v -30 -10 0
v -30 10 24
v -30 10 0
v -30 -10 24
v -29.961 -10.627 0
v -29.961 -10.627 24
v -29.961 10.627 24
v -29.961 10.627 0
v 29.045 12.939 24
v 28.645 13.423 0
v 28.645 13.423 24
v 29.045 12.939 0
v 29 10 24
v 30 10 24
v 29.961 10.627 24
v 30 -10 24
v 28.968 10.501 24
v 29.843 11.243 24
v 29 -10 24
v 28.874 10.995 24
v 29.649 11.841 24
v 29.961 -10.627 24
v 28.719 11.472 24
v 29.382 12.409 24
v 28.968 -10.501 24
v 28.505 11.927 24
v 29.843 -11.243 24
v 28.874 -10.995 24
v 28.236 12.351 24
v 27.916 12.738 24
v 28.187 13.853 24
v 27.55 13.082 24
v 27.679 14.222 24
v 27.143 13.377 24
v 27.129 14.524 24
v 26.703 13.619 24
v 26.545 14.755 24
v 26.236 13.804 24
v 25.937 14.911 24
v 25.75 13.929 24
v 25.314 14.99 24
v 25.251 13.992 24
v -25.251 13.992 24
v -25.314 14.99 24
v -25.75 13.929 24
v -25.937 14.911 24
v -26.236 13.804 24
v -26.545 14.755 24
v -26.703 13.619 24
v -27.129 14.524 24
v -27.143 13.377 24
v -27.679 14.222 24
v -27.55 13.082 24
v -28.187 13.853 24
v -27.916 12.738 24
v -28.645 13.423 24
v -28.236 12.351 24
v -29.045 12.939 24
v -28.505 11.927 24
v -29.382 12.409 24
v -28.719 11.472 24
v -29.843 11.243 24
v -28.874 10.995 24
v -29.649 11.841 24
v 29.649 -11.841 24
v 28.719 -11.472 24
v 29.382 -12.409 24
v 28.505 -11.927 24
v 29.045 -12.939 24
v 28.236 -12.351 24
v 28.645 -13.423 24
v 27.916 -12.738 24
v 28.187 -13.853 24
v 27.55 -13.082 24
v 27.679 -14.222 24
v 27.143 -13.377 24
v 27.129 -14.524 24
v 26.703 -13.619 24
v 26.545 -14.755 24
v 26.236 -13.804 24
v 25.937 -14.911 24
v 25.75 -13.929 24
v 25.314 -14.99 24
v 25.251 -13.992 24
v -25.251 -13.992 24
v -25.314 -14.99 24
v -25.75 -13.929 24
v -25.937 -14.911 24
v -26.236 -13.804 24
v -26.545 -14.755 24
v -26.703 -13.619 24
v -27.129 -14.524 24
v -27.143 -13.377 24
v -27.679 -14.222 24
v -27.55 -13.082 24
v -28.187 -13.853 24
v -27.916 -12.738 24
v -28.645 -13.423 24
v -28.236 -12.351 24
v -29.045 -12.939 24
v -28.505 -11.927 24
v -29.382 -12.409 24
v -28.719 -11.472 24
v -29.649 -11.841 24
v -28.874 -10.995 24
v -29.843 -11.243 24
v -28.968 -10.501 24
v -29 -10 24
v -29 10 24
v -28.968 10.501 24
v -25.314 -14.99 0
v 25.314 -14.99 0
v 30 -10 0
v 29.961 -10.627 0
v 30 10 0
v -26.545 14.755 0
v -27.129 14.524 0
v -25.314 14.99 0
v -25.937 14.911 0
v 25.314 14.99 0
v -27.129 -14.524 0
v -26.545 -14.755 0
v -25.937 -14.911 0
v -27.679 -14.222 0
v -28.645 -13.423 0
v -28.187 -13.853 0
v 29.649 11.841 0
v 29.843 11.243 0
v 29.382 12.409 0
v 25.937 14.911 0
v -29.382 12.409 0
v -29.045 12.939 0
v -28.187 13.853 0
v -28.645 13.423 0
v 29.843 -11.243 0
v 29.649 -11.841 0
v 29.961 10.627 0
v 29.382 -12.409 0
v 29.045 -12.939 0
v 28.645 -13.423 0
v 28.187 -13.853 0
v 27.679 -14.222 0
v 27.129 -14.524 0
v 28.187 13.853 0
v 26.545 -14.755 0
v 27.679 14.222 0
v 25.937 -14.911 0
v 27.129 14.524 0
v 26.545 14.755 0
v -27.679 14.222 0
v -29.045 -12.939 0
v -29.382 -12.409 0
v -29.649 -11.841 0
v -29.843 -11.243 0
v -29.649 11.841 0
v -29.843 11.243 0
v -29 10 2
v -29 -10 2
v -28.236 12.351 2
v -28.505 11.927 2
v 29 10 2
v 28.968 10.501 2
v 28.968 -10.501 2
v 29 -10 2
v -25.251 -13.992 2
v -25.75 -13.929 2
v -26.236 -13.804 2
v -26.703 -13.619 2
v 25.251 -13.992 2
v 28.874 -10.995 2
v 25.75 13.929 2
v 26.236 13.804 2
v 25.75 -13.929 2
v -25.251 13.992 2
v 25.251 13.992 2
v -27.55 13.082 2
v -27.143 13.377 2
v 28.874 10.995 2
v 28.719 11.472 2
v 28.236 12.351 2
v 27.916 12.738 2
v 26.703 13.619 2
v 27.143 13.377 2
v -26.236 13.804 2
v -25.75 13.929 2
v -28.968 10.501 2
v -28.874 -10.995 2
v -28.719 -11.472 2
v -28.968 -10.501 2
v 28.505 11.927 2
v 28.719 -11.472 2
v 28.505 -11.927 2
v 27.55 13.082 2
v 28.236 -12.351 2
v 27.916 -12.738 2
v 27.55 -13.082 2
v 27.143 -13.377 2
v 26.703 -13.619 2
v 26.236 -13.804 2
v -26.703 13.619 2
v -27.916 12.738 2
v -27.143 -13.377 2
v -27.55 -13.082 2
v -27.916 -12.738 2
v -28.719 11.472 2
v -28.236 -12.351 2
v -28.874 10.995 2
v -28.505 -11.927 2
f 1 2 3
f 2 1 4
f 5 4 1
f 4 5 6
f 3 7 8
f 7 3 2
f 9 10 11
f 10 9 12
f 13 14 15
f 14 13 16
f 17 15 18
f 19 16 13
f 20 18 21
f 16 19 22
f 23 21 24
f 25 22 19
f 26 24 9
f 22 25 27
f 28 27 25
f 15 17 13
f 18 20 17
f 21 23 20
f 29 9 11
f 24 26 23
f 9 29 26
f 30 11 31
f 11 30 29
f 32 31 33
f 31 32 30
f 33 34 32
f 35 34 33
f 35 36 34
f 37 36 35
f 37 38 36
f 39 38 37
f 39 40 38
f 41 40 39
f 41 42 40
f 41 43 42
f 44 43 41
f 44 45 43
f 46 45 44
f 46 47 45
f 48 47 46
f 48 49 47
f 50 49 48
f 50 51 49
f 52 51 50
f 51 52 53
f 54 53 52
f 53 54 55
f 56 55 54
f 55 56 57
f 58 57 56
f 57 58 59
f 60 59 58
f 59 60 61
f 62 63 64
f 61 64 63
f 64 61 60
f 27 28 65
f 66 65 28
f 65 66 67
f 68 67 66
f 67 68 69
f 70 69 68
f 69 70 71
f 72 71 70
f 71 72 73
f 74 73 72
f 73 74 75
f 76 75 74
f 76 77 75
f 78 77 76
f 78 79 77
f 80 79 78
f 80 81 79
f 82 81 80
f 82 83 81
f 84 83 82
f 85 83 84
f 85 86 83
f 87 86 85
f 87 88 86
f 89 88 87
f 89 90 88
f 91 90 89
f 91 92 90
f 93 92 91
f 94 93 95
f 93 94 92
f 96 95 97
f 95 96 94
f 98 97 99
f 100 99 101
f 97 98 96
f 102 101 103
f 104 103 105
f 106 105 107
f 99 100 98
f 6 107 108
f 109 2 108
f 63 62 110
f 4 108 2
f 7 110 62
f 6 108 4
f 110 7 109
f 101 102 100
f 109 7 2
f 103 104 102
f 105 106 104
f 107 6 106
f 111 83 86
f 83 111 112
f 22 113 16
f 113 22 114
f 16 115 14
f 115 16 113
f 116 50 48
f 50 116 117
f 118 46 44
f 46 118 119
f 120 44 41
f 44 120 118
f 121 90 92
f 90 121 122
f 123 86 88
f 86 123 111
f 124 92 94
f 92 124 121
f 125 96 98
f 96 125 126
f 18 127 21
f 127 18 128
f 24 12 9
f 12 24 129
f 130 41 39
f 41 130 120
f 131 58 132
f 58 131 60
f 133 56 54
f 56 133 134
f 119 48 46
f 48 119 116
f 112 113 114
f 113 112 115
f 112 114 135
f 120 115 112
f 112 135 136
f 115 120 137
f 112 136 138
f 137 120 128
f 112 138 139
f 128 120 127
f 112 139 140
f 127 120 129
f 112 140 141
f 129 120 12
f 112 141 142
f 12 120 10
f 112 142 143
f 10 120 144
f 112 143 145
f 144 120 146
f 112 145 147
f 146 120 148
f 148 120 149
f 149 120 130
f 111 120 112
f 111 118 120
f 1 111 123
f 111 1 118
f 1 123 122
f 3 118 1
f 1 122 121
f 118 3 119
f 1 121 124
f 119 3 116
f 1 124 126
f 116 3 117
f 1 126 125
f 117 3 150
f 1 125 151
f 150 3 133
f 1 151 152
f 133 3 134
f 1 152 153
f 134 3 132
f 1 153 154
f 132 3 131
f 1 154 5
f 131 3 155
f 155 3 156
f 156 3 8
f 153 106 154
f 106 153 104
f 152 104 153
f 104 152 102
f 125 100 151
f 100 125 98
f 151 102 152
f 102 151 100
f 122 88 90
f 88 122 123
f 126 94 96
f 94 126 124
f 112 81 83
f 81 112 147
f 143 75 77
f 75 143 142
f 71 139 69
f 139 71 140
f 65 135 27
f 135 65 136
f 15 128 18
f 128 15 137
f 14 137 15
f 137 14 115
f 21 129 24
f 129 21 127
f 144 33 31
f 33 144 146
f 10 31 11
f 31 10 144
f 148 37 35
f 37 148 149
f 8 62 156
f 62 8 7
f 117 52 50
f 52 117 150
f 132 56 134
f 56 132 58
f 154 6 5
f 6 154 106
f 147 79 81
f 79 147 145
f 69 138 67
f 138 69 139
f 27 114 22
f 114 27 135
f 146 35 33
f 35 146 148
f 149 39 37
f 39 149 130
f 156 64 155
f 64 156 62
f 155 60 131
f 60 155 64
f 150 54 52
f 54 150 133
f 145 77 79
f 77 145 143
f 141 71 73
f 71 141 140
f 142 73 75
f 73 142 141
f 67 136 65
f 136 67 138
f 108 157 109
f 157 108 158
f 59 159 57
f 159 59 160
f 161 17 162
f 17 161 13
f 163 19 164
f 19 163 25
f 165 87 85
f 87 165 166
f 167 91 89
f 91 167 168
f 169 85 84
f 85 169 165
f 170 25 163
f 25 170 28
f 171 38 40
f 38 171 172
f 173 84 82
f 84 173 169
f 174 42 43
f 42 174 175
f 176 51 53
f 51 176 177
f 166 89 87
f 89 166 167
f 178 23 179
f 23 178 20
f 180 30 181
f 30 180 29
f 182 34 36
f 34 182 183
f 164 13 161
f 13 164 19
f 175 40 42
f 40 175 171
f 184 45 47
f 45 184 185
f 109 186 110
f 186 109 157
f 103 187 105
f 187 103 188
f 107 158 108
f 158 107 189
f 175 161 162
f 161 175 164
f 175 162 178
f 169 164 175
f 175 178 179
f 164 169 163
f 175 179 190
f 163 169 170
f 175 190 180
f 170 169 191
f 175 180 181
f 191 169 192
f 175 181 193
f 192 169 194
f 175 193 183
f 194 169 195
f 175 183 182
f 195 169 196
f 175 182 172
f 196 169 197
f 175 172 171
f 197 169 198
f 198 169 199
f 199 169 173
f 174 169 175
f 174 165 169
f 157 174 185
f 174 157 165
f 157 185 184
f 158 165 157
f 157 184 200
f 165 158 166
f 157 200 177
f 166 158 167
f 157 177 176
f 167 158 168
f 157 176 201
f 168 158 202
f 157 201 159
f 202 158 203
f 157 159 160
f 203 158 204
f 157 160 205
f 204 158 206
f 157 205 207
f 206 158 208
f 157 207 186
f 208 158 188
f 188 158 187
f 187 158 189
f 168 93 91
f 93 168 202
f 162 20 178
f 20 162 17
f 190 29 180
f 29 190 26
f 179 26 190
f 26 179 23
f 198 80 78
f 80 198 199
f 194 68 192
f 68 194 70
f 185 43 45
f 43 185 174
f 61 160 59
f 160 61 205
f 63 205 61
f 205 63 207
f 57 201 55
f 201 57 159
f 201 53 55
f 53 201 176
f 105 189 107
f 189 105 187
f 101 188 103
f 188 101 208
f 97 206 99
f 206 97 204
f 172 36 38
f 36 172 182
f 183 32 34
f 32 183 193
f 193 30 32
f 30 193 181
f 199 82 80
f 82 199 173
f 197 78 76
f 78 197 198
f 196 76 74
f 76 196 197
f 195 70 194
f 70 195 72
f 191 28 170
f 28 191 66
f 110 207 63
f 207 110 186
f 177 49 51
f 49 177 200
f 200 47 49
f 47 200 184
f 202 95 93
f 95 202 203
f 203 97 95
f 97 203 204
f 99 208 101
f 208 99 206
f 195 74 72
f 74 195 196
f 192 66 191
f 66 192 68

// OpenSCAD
$fn = 50;


difference() {
	union() {
		hull() {
			translate(v = [-25.0000000000, 10.0000000000, 0]) {
				cylinder(h = 24, r = 5);
			}
			translate(v = [25.0000000000, 10.0000000000, 0]) {
				cylinder(h = 24, r = 5);
			}
			translate(v = [-25.0000000000, -10.0000000000, 0]) {
				cylinder(h = 24, r = 5);
			}
			translate(v = [25.0000000000, -10.0000000000, 0]) {
				cylinder(h = 24, r = 5);
			}
		}
	}
	union() {
		translate(v = [0, 0, 2]) {
			hull() {
				translate(v = [-25.0000000000, 10.0000000000, 0]) {
					cylinder(h = 22, r = 4);
				}
				translate(v = [25.0000000000, 10.0000000000, 0]) {
					cylinder(h = 22, r = 4);
				}
				translate(v = [-25.0000000000, -10.0000000000, 0]) {
					cylinder(h = 22, r = 4);
				}
				translate(v = [25.0000000000, -10.0000000000, 0]) {
					cylinder(h = 22, r = 4);
				}
			}
		}
	}
}
